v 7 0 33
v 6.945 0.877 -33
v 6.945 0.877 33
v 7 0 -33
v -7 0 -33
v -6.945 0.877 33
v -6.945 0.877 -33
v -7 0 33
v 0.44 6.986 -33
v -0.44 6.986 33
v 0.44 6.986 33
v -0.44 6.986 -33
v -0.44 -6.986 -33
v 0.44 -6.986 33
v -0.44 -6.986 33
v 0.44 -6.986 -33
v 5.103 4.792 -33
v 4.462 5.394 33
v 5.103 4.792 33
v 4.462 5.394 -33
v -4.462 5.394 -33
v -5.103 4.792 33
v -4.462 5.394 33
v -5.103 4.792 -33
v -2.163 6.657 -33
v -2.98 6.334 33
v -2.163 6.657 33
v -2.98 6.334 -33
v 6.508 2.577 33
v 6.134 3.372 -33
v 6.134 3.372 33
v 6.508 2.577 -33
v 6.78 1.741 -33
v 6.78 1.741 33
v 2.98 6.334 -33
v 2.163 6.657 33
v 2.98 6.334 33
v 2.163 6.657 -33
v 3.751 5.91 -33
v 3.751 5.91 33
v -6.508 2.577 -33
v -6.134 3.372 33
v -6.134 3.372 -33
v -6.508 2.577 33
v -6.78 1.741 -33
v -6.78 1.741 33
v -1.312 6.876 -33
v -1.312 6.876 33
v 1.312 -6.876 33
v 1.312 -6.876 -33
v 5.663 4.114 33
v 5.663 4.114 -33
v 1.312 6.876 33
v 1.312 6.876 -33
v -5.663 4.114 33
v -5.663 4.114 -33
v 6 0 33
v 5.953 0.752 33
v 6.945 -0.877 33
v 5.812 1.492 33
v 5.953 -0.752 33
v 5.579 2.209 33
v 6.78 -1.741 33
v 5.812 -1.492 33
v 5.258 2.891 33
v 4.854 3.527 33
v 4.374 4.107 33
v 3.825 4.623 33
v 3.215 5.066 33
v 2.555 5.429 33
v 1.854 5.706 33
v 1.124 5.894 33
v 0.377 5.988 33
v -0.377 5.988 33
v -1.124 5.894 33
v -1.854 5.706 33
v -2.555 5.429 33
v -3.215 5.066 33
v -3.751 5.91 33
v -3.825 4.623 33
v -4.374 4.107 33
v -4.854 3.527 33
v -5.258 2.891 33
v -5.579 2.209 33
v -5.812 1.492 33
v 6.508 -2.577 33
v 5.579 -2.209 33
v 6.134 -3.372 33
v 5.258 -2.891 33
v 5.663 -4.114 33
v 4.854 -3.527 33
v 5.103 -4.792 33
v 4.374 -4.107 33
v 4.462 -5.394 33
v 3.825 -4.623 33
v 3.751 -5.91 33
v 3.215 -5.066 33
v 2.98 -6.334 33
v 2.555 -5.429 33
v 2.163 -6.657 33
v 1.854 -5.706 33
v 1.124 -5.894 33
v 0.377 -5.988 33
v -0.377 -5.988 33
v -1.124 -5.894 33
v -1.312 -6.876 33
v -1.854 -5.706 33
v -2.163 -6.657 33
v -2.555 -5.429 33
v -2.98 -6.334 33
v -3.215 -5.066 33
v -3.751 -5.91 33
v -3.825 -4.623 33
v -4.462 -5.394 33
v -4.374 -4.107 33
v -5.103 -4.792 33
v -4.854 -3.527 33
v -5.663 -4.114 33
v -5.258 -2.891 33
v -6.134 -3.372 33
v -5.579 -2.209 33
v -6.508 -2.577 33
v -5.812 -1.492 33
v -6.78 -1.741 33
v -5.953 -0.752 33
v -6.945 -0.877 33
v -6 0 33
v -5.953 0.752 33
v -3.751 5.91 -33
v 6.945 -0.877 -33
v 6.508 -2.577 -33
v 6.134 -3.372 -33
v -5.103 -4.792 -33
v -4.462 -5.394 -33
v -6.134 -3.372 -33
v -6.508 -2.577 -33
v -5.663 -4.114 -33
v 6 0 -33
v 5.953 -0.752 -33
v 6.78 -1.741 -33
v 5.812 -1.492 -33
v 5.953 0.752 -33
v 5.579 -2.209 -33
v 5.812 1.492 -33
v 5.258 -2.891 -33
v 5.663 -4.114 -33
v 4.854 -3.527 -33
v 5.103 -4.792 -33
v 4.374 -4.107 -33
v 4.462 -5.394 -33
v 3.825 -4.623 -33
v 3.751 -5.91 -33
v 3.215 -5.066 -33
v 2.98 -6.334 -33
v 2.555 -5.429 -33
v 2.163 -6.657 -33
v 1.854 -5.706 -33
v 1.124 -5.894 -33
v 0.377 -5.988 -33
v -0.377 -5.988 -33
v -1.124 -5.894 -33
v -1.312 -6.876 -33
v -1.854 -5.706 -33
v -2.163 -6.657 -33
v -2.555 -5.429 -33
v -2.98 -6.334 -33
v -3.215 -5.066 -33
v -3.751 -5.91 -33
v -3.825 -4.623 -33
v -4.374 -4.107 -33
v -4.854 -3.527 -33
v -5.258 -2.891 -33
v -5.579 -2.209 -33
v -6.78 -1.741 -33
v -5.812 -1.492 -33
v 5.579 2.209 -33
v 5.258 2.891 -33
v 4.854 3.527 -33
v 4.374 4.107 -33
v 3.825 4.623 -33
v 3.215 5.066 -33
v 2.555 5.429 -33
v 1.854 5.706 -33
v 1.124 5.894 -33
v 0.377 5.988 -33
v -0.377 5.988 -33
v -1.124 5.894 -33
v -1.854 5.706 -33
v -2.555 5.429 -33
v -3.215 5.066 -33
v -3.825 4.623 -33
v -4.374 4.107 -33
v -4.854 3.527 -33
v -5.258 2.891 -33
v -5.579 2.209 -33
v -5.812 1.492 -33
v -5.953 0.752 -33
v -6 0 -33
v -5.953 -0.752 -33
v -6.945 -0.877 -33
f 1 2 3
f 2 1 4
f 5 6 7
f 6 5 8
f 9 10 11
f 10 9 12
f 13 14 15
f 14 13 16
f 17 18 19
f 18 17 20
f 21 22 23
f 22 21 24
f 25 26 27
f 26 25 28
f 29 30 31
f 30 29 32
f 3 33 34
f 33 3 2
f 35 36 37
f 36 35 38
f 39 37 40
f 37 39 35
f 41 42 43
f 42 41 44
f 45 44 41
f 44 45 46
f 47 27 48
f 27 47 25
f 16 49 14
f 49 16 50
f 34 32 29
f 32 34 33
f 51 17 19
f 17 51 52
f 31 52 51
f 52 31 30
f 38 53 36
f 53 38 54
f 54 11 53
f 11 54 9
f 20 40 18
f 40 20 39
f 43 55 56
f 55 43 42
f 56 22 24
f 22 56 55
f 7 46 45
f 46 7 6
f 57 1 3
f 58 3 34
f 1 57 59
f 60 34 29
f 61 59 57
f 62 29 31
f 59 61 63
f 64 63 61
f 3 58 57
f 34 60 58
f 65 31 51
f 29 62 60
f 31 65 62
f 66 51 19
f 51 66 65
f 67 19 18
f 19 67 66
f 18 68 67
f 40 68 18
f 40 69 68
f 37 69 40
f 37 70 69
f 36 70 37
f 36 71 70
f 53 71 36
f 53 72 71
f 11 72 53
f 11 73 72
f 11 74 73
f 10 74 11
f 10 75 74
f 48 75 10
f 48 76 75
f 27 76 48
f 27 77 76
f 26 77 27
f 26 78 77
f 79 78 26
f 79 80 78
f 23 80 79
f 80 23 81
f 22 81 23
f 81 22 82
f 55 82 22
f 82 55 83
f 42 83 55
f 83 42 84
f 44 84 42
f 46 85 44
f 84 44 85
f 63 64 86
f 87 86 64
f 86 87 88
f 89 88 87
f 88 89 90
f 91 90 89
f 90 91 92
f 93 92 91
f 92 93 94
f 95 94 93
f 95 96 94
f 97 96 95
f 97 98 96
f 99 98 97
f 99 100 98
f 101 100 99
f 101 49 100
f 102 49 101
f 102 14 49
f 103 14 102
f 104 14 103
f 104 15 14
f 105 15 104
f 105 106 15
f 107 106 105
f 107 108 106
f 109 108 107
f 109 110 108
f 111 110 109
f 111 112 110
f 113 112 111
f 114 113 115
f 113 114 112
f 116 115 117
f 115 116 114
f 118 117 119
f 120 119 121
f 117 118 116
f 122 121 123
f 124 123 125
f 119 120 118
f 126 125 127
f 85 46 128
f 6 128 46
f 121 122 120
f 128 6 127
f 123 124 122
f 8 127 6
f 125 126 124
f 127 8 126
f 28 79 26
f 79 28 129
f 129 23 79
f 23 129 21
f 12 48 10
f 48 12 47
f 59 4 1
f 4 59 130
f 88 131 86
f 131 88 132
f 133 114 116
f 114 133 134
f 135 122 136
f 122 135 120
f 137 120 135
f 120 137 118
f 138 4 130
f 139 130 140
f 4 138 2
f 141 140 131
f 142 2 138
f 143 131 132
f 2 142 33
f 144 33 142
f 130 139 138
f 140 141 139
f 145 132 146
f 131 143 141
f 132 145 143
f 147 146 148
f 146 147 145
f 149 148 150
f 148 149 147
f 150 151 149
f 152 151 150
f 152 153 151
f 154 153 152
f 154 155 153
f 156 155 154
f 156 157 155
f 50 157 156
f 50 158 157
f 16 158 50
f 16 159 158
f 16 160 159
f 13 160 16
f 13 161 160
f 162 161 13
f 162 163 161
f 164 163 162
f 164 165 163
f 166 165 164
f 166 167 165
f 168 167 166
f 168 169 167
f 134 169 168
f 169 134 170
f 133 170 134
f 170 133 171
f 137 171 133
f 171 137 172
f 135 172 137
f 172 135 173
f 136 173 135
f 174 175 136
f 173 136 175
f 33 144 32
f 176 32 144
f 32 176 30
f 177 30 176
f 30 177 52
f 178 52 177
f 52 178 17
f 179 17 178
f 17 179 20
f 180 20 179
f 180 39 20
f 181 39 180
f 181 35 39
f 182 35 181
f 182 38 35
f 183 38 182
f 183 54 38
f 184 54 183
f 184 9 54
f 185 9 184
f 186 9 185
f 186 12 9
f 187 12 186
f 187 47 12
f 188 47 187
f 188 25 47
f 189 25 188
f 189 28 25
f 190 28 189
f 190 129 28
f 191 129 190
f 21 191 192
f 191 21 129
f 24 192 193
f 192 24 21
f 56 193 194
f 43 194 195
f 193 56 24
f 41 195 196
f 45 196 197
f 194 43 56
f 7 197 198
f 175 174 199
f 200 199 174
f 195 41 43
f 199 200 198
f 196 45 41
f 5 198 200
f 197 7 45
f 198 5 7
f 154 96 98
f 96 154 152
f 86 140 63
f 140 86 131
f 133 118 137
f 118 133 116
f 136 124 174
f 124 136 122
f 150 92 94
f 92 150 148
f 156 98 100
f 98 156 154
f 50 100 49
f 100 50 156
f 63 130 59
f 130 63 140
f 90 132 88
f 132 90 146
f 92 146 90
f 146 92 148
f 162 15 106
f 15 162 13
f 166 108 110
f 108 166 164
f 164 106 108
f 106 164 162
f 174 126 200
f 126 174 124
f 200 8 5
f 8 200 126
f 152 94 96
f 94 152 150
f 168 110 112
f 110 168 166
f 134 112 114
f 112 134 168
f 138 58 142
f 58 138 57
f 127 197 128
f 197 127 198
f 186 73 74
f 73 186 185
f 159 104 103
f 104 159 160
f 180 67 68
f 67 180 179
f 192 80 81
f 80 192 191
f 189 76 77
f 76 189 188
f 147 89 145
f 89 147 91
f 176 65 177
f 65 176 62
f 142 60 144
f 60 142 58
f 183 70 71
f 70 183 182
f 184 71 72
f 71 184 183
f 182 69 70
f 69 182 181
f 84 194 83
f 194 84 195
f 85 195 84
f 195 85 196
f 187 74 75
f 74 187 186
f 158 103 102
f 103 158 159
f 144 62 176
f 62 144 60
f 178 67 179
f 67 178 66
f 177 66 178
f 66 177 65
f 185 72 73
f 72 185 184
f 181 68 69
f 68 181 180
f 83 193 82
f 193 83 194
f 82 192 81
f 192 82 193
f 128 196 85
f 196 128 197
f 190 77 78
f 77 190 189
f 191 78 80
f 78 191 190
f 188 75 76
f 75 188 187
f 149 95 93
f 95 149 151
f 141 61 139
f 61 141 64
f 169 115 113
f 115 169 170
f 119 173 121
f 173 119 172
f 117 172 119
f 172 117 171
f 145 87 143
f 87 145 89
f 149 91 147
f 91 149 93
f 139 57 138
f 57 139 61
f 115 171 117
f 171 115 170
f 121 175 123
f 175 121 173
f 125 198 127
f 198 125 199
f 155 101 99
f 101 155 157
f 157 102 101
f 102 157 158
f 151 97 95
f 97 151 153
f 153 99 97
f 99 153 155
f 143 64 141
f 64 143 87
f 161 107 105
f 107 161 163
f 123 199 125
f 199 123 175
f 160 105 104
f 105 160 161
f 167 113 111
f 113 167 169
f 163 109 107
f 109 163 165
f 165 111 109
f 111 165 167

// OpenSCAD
$fn = 50;


difference() {
	union() {
		translate(v = [0, 0, -33.0000000000]) {
			cylinder(h = 66, r = 7.0000000000);
		}
	}
	union() {
		translate(v = [0, 0, -100.0000000000]) {
			cylinder(h = 200, r = 6);
		}
	}
}
